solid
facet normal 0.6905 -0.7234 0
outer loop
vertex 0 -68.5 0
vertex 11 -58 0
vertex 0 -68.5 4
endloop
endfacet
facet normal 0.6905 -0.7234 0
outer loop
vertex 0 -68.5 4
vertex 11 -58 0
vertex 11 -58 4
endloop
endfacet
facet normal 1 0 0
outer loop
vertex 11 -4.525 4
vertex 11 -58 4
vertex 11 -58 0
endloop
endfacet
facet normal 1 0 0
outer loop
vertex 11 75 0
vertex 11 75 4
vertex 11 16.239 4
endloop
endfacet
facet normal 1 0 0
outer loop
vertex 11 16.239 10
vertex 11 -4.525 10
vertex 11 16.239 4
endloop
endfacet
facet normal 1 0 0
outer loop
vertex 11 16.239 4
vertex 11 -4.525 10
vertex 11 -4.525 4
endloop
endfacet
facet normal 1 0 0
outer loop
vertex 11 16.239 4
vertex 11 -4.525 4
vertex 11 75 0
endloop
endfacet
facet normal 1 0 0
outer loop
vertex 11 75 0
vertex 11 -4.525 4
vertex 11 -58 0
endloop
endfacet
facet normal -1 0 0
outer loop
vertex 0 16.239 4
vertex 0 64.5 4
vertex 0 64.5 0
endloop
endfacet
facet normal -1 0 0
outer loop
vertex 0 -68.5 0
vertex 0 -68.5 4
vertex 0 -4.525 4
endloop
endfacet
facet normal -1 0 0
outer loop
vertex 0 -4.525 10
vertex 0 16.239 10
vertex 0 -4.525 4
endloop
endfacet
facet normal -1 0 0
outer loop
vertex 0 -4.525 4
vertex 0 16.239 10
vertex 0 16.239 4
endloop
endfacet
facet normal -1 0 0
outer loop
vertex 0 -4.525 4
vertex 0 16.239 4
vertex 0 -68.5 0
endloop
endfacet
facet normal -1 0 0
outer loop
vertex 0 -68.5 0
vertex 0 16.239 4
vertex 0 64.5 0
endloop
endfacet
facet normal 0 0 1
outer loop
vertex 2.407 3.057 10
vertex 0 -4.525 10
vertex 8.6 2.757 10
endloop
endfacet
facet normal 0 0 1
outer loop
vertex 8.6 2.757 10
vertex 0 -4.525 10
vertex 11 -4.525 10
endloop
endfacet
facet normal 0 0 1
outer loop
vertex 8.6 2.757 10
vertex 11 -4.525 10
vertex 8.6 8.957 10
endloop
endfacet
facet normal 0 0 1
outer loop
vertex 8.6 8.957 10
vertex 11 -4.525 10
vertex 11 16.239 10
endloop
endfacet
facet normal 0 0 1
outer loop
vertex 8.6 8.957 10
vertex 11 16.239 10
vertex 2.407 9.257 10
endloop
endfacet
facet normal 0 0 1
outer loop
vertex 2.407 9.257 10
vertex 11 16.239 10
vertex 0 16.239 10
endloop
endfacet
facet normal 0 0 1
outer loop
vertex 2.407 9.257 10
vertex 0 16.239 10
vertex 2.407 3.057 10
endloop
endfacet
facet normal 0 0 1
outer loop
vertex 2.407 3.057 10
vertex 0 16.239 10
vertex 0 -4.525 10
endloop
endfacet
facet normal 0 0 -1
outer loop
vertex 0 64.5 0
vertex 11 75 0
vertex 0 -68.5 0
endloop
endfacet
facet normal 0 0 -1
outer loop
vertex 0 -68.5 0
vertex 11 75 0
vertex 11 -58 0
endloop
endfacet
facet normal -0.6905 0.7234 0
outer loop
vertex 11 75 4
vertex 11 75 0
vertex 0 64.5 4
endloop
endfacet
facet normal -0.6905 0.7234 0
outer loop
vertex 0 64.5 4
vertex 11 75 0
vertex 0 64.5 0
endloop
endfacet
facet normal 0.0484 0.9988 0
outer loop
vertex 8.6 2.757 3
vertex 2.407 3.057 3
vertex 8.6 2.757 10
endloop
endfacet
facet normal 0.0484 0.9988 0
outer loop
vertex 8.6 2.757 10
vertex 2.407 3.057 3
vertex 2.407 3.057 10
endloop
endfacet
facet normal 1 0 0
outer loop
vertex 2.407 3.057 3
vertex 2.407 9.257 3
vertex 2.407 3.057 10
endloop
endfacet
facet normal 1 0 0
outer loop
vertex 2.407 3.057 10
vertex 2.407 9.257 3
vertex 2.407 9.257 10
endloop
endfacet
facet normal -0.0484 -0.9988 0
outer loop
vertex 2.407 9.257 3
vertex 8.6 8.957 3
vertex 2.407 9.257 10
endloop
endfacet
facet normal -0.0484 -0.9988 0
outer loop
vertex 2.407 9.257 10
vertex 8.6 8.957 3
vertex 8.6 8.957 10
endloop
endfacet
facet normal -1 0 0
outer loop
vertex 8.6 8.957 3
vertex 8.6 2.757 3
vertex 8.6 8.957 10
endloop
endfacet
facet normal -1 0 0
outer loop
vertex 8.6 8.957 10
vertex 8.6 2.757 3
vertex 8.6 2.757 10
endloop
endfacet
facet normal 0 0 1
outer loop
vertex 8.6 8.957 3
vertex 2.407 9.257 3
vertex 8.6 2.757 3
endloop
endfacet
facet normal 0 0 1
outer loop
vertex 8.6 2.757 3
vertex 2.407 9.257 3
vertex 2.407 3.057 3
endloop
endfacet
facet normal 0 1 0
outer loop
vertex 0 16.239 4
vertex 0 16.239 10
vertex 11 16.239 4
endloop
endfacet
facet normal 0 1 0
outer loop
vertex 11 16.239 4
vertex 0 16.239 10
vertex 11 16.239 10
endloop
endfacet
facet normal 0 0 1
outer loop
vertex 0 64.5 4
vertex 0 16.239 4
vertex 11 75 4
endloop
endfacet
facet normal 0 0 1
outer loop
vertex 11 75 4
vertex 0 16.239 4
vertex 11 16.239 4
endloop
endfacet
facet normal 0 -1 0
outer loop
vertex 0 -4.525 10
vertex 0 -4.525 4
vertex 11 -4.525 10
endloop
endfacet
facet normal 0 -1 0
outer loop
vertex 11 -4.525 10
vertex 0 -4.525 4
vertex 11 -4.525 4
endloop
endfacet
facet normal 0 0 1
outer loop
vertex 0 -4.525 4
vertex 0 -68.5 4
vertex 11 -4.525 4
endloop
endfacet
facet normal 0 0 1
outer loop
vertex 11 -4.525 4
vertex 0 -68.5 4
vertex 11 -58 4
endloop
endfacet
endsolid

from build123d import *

# Parameters (mm, degrees)
BOSS_EXTRU_2_DEPTH       = 10
ENL_V_MAT_EXTRU_25_DEPTH = 7
ESQUISSE5_W              = 37.59862274
ESQUISSE5_H              = 68.527189437
ENL_V_MAT_EXTRU_26_DEPTH = 6


with BuildPart() as part:
    # Esquisse2 → Boss.-Extru.2 (new body)
    with BuildSketch(Plane.XY):
        Polygon((0, 64.5), (0, -68.5), (11, -58), (11, 75), align=None)
    extrude(amount=BOSS_EXTRU_2_DEPTH)

    # Esquisse4 → Enlèv. mat.-Extru.25 (cut)
    with BuildSketch(Plane.XY.offset(10)):
        Polygon((2.407262121, 3.056563683), (2.407262121, 9.256563683), (8.6, 8.956567739), (8.6, 2.756567739), align=None)
    extrude(amount=-ENL_V_MAT_EXTRU_25_DEPTH, mode=Mode.SUBTRACT)

    # Esquisse5 → Enlèv. mat.-Extru.26 (cut)
    with BuildSketch(Plane.XY.offset(10)):
        with Locations((3.383685942, 50.502193636)):
            Rectangle(ESQUISSE5_W, ESQUISSE5_H)
        with Locations((3.383685942, -38.789058157)):
            Rectangle(ESQUISSE5_W, ESQUISSE5_H)
    extrude(amount=-ENL_V_MAT_EXTRU_26_DEPTH, mode=Mode.SUBTRACT)


solid = part.part
